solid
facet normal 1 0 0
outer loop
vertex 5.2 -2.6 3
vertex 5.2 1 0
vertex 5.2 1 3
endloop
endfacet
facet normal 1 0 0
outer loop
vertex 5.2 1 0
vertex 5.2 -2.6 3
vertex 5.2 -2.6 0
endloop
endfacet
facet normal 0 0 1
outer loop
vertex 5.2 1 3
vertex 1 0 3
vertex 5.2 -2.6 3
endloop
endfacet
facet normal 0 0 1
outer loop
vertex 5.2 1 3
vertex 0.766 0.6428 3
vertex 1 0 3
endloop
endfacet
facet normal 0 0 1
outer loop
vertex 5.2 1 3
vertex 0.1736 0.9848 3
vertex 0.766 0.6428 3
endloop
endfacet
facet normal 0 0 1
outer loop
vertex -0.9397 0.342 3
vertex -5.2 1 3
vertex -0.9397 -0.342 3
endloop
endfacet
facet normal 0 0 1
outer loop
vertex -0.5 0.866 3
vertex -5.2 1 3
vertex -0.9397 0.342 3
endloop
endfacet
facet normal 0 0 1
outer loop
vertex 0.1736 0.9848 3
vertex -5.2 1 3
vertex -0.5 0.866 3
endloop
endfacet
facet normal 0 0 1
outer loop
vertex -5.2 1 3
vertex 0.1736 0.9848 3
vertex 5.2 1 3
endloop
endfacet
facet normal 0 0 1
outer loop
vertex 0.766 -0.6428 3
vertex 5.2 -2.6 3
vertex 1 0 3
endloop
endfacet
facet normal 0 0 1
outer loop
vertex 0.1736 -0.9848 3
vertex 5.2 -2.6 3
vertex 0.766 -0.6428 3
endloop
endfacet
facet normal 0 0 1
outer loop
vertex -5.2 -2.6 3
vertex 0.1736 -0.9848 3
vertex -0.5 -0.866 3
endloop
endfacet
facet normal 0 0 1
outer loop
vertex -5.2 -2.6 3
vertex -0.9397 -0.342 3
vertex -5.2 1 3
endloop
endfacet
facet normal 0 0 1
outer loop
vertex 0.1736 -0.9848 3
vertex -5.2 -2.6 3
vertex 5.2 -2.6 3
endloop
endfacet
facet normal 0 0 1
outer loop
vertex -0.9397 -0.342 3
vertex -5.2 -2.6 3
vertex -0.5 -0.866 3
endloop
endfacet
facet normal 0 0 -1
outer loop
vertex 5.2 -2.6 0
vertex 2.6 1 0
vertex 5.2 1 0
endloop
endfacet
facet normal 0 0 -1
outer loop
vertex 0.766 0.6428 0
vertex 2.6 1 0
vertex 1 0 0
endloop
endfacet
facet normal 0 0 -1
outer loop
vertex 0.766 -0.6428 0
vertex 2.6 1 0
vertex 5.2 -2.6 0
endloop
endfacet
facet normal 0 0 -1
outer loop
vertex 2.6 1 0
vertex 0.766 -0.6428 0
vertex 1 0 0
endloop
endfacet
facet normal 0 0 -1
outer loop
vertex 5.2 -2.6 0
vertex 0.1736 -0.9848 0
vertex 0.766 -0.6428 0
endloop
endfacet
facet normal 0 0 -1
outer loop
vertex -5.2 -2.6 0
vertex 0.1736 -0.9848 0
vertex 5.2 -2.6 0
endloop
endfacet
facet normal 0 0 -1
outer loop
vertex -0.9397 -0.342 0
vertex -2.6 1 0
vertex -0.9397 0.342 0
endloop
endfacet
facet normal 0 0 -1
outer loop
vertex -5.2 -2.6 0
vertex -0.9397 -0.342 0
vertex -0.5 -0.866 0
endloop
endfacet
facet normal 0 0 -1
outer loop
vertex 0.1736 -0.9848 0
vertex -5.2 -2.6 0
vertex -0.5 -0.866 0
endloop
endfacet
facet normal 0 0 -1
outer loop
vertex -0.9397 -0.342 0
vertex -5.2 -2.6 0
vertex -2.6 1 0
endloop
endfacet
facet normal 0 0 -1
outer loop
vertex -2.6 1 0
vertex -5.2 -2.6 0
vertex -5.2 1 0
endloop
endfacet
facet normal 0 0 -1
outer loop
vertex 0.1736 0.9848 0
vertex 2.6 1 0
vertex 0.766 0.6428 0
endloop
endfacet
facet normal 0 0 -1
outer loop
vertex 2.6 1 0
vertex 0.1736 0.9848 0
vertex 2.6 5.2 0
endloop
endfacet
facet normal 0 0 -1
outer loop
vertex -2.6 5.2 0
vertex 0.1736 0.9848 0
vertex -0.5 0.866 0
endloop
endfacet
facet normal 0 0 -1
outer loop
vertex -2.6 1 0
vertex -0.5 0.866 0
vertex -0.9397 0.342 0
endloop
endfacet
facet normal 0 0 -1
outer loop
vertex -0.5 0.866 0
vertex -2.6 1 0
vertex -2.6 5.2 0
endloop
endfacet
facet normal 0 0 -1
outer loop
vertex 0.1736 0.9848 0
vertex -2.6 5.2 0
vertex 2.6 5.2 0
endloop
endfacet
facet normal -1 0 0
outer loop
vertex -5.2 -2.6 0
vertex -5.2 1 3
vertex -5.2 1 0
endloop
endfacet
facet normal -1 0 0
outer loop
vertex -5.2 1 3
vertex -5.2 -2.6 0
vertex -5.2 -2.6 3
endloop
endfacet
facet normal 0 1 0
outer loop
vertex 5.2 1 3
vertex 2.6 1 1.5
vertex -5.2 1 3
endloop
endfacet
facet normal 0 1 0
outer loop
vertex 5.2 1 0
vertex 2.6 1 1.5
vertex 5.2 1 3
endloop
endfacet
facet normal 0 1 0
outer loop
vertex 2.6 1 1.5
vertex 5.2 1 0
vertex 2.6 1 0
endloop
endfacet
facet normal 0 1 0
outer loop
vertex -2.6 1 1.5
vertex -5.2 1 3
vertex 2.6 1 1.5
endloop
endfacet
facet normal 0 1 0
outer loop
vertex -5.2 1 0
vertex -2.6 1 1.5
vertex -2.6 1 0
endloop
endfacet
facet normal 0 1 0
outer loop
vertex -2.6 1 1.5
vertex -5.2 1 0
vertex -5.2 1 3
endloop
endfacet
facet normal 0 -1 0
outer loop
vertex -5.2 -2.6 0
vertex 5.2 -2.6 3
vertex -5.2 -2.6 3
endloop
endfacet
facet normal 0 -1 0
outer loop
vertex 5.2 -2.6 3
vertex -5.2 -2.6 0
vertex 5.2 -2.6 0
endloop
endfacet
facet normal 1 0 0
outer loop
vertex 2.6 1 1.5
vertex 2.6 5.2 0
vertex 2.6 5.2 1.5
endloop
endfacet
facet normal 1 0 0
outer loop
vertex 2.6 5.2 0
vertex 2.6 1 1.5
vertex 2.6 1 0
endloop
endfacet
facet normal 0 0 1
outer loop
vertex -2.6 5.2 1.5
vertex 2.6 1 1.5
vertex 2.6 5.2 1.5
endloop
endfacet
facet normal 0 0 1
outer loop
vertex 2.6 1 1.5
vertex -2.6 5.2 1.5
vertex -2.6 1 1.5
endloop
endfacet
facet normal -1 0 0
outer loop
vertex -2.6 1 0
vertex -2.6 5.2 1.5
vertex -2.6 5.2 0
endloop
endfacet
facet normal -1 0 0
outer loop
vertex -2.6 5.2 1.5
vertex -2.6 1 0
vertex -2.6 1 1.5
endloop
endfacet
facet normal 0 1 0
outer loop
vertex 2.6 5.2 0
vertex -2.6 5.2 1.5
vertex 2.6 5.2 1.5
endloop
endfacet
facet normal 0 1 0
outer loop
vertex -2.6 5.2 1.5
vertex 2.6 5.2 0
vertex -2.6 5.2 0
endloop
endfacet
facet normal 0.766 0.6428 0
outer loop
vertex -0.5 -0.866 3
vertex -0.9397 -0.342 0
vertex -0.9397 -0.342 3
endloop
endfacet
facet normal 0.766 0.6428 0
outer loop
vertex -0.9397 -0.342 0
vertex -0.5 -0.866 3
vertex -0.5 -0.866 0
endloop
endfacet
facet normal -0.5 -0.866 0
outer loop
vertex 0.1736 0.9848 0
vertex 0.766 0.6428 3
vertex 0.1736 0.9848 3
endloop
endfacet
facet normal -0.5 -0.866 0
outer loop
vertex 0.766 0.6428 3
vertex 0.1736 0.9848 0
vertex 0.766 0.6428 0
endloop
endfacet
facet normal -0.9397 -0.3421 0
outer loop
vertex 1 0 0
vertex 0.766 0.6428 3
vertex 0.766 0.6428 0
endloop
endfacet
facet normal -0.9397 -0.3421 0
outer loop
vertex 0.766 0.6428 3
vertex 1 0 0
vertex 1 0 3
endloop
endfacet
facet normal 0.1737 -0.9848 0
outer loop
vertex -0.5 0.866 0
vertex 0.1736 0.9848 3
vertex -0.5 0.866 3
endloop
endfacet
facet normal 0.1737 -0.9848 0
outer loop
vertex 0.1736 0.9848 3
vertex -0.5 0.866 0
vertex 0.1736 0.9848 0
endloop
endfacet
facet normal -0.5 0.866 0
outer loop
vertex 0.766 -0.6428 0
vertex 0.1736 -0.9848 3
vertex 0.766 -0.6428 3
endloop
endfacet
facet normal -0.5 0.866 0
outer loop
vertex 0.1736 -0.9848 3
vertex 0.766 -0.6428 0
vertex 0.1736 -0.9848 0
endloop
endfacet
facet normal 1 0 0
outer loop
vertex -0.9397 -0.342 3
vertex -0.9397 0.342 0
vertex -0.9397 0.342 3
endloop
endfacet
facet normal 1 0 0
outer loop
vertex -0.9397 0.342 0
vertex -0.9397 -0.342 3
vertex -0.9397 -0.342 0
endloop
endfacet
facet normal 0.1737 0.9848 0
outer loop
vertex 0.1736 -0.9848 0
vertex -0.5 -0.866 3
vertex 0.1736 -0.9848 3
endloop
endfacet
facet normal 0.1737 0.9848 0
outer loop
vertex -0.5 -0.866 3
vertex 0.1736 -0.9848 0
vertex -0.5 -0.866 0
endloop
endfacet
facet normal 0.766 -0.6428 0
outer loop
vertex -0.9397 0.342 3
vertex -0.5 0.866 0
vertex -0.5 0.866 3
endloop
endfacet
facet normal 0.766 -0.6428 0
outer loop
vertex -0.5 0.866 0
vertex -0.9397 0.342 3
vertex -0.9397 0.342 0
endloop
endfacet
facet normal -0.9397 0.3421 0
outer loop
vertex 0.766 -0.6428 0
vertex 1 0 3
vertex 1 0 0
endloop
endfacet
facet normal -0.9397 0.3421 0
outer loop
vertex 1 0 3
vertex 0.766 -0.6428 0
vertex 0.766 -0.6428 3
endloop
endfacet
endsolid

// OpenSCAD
// File: Standoff peg.scad
// Description: A small peg used to hold modules in position. Only needed for the handwired version of Dodepan.
// Author: Turi Scandurra
// Website: https://www.turiscandurra.com/circuits
// Date: 2024-09-20
// License: MIT License

mount_w = 1.6;
screw_r = 1.0;

module standoff_peg(height){
    peg_h = 1.5;
    radius = mount_w + screw_r;
    diam = radius * 2;
    difference() {
        union() {
            translate([diam*-1, radius*-1, 0])
                cube([diam*2, radius + screw_r, height+peg_h]);
            translate([-radius, 0]) cube([diam, diam, peg_h]);
        }
        cylinder(r = screw_r, h = height + peg_h,$fn=9);
      }
}

standoff_peg(1.5);
